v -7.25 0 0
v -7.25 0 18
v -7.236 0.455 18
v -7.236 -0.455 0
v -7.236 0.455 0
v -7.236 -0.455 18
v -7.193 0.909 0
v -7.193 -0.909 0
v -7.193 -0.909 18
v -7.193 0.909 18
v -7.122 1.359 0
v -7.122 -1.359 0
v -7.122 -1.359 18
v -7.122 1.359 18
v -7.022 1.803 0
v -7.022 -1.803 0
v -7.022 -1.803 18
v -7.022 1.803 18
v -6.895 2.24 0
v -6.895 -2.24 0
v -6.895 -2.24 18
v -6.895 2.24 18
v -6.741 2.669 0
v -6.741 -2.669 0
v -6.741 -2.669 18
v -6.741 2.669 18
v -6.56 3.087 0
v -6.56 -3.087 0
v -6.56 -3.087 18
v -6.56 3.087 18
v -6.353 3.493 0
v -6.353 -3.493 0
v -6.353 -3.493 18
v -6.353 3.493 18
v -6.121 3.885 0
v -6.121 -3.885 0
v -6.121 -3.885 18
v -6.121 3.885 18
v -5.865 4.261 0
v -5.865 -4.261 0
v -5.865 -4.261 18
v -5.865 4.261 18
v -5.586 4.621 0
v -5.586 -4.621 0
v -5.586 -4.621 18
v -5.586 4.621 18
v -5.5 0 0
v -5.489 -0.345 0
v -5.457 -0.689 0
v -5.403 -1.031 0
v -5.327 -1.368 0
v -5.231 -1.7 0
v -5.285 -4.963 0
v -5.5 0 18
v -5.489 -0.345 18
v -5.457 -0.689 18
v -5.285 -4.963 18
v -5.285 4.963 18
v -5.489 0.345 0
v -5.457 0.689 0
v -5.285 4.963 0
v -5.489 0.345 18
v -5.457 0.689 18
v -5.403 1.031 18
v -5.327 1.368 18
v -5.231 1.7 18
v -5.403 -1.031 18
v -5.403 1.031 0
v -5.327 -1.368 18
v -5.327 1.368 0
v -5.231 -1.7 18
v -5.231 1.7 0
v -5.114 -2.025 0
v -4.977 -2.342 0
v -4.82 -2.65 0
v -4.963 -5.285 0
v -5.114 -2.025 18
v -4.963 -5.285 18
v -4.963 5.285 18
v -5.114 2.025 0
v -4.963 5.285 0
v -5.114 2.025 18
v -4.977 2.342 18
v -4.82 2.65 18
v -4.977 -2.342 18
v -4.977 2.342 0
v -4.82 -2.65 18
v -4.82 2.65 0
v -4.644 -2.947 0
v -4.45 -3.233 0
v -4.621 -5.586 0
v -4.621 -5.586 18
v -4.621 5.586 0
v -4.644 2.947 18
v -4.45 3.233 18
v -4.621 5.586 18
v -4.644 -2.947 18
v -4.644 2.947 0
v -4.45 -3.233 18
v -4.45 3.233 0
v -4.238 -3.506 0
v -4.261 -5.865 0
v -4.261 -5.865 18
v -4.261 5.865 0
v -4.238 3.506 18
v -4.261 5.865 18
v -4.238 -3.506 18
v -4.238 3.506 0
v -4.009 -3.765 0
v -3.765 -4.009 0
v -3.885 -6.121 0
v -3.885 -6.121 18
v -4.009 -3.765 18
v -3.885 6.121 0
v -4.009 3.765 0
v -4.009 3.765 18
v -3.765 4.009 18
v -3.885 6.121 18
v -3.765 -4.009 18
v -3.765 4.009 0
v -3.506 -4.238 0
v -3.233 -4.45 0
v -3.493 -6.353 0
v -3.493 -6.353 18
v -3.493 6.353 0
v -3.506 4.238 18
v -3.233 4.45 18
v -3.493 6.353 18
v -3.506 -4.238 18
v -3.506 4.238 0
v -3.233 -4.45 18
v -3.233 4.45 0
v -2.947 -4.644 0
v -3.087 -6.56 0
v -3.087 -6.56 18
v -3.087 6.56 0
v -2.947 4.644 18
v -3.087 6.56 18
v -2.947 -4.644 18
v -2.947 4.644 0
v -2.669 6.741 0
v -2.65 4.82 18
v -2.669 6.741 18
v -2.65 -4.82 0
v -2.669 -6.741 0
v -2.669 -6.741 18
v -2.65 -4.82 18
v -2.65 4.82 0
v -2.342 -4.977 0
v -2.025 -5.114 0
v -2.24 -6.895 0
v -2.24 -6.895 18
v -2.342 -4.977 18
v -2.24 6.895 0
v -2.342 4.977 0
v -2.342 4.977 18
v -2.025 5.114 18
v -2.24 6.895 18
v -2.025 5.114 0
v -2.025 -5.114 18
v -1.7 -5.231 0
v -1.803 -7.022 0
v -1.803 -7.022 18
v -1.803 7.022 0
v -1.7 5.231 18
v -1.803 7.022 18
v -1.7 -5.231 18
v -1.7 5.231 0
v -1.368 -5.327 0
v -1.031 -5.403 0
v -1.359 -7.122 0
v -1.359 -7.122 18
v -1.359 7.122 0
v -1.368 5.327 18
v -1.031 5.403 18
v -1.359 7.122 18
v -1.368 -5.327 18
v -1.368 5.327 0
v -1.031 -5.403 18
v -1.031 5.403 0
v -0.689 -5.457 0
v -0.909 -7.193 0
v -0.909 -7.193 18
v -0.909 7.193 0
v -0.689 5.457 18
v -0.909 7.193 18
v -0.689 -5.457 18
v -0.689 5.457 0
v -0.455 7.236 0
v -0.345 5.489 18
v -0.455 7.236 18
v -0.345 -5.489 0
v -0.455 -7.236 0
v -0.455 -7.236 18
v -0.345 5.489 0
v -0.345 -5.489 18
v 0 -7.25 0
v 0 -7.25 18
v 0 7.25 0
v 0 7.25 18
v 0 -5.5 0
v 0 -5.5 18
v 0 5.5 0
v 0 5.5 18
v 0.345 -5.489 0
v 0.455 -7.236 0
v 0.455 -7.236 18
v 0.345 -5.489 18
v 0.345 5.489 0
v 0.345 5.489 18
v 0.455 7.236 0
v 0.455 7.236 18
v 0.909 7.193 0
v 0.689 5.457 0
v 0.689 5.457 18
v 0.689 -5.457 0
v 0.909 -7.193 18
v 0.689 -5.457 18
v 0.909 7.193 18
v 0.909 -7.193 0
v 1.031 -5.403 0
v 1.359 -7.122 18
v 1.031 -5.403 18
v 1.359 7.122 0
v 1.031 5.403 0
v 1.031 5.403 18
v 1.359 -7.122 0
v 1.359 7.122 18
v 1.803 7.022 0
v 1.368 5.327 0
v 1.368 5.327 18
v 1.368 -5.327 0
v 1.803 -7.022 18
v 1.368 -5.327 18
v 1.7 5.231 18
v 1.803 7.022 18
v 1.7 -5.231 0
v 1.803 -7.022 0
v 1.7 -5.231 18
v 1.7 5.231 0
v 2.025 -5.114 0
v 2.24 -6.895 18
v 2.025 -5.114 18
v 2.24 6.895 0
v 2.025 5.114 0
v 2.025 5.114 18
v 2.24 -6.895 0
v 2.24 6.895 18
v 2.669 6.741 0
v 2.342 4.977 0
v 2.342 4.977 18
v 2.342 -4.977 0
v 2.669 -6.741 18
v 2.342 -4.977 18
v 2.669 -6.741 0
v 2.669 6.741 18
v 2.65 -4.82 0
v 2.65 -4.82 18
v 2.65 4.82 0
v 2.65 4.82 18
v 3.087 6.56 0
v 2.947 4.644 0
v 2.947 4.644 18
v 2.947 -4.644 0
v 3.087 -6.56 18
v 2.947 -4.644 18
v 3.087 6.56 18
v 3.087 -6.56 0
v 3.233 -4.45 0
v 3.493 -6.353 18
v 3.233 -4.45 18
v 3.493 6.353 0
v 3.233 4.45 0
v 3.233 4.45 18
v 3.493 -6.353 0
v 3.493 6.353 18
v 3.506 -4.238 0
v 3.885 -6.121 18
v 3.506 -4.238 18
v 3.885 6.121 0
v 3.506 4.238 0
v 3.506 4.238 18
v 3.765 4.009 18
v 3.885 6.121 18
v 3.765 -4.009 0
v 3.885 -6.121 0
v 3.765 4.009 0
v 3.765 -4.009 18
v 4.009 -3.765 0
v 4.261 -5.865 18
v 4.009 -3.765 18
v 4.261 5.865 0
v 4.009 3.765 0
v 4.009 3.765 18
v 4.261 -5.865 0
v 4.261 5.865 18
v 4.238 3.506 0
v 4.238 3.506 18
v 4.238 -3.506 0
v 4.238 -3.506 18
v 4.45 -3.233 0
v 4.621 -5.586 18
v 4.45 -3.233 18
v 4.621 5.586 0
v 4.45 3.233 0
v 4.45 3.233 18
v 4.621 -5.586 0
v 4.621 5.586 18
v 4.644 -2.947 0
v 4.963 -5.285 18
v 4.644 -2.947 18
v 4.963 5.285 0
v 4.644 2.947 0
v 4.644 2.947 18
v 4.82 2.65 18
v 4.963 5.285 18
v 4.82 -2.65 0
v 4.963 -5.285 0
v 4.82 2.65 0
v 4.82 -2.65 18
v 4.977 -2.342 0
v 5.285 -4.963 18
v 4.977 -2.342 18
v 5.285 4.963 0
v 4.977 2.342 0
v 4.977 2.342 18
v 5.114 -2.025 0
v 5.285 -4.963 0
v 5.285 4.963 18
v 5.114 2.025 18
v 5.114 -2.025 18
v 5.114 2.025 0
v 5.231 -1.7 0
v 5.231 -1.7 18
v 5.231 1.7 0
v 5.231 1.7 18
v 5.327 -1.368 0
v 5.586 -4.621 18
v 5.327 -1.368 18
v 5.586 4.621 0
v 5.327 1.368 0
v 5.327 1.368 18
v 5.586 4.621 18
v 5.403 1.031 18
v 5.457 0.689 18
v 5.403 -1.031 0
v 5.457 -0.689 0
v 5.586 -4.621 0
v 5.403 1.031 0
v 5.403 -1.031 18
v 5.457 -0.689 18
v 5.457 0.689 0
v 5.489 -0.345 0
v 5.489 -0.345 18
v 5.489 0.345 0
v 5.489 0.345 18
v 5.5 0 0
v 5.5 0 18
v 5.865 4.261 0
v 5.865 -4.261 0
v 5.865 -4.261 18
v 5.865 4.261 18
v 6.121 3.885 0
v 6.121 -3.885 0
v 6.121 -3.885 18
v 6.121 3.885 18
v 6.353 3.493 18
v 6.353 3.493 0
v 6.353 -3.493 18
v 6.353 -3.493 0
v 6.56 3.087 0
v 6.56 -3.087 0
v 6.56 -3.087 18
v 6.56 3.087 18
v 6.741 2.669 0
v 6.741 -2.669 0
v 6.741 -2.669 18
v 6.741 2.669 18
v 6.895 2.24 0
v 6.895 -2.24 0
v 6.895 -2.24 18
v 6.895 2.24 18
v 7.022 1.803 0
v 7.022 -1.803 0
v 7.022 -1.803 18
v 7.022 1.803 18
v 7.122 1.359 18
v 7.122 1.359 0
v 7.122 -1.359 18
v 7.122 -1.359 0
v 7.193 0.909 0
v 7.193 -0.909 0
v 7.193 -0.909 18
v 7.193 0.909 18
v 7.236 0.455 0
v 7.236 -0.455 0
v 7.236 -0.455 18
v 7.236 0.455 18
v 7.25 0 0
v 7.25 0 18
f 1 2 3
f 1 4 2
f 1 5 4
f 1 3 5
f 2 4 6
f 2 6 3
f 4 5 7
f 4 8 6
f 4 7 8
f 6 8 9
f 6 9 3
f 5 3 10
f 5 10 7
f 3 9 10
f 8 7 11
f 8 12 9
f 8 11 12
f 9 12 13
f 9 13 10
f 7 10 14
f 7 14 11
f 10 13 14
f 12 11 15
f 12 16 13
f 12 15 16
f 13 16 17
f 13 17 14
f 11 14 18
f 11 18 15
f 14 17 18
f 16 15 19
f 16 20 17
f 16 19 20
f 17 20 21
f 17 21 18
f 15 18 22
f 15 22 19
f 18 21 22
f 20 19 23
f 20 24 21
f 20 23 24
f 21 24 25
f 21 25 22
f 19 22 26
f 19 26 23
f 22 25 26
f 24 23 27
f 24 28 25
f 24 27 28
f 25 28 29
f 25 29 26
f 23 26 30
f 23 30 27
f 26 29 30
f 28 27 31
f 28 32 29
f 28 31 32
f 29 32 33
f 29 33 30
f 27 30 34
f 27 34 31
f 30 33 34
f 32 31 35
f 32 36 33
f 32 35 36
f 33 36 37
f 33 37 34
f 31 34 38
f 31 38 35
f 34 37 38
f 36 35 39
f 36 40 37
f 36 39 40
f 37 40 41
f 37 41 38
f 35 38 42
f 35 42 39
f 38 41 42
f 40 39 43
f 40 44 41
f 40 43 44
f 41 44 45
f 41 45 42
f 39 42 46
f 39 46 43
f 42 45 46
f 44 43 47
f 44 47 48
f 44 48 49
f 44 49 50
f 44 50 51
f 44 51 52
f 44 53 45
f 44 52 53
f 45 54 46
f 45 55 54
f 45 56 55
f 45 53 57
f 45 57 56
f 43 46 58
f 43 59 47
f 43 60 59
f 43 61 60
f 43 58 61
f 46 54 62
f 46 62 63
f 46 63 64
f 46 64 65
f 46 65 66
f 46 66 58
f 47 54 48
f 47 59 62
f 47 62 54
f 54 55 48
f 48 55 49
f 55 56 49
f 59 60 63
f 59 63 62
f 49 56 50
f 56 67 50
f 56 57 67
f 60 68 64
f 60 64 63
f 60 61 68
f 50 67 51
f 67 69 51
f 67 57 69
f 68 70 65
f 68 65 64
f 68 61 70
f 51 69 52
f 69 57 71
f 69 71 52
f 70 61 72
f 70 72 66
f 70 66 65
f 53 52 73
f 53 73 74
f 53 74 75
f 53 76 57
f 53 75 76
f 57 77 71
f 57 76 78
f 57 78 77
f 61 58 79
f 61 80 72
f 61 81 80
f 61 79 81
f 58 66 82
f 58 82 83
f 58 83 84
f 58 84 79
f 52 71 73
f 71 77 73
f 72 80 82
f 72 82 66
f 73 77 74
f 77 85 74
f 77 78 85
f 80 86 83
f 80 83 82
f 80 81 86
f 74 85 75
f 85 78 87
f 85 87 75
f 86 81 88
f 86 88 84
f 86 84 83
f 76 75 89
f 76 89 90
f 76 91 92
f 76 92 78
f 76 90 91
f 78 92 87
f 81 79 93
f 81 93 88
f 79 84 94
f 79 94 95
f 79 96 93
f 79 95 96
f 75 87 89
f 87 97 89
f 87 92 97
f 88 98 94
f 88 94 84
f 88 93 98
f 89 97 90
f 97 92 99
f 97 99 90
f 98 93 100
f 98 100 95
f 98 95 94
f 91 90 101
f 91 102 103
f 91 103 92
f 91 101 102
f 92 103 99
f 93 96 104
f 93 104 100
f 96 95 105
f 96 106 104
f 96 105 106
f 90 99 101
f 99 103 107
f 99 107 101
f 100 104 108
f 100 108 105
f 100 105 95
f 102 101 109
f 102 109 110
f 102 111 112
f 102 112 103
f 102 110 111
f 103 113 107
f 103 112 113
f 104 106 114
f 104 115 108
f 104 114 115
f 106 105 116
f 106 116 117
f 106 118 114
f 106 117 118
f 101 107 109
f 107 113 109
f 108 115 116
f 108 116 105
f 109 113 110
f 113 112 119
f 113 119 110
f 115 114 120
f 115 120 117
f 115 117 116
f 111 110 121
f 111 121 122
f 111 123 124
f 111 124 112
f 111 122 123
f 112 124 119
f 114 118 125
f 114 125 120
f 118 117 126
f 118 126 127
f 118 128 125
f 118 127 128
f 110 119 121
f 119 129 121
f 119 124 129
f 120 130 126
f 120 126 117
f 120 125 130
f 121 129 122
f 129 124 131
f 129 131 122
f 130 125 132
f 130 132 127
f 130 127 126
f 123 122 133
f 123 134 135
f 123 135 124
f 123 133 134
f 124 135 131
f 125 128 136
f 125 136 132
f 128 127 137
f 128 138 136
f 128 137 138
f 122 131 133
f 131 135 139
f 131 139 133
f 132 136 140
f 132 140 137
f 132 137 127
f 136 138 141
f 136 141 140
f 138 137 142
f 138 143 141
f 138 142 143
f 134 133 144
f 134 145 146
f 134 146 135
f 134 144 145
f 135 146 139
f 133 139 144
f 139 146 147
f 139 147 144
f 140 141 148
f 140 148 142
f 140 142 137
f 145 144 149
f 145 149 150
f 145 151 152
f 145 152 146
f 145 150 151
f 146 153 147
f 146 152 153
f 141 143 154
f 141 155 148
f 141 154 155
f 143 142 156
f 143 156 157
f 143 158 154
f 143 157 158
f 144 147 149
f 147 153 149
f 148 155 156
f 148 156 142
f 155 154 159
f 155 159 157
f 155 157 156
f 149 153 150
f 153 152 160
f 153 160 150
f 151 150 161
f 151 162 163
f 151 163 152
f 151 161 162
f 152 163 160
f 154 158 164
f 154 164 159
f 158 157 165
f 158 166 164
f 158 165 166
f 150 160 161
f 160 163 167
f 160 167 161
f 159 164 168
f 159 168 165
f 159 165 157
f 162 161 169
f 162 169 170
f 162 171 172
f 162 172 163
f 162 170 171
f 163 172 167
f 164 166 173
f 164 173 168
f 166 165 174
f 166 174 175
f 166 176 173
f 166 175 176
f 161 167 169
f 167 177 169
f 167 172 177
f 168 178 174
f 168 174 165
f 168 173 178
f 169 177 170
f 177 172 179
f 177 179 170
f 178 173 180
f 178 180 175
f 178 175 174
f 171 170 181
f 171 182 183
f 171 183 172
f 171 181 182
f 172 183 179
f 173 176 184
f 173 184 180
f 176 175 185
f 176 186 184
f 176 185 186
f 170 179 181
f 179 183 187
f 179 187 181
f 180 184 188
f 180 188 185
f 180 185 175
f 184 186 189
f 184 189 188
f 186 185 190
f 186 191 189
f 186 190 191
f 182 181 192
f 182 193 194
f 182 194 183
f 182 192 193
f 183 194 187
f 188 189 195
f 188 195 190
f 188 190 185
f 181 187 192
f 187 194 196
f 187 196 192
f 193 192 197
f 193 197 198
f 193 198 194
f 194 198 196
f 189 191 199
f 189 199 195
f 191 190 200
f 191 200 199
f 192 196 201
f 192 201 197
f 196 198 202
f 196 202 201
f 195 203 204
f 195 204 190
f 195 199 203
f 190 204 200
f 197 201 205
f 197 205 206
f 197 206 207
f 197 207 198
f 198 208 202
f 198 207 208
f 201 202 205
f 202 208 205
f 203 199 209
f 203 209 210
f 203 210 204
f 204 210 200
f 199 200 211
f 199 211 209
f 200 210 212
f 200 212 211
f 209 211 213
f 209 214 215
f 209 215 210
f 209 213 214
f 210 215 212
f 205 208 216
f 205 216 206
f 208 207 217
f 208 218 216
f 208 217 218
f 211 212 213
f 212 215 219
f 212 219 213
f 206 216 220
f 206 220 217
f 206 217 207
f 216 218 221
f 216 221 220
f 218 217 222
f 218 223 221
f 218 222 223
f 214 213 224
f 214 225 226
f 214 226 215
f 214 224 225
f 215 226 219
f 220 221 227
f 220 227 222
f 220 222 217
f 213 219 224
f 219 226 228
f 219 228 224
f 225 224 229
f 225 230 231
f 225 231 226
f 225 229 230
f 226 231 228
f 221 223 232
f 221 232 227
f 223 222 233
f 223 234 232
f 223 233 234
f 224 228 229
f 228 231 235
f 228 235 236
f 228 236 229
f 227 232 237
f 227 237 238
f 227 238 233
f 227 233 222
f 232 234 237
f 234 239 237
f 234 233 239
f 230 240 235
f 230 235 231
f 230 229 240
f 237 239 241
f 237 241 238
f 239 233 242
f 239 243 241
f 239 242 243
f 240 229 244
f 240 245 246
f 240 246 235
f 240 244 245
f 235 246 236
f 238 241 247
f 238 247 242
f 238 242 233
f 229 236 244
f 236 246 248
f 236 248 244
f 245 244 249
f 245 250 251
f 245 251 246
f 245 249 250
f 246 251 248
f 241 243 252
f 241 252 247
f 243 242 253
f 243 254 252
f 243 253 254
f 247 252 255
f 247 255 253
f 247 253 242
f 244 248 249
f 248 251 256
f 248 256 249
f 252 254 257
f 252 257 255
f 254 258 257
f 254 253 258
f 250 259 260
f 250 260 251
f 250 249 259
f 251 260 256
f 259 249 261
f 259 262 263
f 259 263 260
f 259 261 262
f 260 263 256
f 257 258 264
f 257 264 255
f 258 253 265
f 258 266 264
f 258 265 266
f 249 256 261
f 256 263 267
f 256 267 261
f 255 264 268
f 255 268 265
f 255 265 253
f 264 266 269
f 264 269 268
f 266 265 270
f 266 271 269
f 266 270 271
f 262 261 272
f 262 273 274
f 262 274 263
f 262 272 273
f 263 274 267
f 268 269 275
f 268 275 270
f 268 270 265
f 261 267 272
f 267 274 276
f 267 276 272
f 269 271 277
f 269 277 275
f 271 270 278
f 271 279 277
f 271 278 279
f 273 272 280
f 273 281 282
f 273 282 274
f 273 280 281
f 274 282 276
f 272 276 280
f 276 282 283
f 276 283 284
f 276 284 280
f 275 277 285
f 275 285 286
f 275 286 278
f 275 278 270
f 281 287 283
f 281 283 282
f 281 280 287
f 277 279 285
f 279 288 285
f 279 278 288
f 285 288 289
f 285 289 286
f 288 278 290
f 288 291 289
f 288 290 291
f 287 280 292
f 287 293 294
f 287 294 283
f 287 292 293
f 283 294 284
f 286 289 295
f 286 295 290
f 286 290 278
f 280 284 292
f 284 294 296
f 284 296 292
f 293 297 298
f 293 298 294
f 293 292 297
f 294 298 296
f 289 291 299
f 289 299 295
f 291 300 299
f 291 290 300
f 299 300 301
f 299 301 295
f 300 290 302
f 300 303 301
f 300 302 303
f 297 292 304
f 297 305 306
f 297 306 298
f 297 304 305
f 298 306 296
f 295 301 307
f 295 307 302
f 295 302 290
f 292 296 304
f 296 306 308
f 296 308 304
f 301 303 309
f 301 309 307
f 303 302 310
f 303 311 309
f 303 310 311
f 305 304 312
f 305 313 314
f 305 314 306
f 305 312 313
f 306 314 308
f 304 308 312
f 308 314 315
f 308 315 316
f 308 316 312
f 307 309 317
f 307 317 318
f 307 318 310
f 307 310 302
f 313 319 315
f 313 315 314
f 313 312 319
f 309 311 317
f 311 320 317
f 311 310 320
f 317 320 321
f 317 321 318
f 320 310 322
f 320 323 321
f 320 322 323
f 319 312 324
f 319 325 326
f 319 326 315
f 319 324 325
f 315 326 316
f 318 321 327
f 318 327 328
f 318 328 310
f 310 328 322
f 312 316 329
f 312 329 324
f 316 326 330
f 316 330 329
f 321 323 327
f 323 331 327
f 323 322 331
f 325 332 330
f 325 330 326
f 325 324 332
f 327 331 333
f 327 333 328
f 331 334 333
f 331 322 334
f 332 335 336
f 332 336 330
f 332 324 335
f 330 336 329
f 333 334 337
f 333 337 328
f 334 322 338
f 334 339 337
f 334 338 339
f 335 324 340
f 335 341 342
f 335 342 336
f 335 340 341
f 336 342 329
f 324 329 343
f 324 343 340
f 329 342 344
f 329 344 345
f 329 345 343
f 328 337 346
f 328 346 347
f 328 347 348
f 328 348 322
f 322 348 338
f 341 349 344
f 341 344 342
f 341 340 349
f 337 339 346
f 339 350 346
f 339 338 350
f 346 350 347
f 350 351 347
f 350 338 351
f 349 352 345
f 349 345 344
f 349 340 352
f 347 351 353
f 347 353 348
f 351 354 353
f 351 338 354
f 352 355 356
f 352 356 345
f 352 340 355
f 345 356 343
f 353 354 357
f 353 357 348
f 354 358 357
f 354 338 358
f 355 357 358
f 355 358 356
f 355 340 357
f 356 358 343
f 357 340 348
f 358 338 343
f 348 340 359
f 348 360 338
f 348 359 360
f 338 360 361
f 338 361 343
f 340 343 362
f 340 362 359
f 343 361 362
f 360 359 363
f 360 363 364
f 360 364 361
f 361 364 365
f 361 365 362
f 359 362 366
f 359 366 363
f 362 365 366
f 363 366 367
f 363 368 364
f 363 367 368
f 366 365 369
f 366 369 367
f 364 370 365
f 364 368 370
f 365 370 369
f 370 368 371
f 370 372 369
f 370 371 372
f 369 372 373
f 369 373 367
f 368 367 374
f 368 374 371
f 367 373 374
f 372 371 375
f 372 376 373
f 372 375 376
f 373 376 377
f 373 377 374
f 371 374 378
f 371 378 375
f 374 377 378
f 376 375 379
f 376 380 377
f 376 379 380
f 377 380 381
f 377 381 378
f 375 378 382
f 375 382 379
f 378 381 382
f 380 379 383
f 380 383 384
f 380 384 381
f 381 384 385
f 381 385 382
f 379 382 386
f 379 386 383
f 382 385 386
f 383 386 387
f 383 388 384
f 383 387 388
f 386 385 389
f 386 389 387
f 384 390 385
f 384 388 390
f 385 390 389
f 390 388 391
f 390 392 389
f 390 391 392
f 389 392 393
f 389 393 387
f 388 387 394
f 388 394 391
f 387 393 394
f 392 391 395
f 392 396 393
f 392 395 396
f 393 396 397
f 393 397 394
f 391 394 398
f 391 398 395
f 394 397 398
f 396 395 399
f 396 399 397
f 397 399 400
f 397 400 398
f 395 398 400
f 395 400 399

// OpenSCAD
// file: ../../../open-cylinder.scad
// // TODO: Lower this to 50.
module openCylinder(height = 3,
                    outerRadius = 7,
                    innerRadius = 4.5,
                    fn = 100)
{
echo("hi oc");    
    $fn = fn;

    difference()
    {
        cylinder(r=outerRadius,
                 h=height);

        translate([0, 0, -1])
        cylinder(r=innerRadius,
                 h=height+1.01);
    }
}
// main file
use <../../../open-cylinder.scad>

innerDiameter = 11.0; // very slightly loose
innerRadius = innerDiameter / 2.0;

outerDiameter = 14.5; // very slightly snug
outerRadius = outerDiameter / 2.0;

openCylinder(height = 18,
                    outerRadius = outerRadius,
                    innerRadius = innerRadius);
